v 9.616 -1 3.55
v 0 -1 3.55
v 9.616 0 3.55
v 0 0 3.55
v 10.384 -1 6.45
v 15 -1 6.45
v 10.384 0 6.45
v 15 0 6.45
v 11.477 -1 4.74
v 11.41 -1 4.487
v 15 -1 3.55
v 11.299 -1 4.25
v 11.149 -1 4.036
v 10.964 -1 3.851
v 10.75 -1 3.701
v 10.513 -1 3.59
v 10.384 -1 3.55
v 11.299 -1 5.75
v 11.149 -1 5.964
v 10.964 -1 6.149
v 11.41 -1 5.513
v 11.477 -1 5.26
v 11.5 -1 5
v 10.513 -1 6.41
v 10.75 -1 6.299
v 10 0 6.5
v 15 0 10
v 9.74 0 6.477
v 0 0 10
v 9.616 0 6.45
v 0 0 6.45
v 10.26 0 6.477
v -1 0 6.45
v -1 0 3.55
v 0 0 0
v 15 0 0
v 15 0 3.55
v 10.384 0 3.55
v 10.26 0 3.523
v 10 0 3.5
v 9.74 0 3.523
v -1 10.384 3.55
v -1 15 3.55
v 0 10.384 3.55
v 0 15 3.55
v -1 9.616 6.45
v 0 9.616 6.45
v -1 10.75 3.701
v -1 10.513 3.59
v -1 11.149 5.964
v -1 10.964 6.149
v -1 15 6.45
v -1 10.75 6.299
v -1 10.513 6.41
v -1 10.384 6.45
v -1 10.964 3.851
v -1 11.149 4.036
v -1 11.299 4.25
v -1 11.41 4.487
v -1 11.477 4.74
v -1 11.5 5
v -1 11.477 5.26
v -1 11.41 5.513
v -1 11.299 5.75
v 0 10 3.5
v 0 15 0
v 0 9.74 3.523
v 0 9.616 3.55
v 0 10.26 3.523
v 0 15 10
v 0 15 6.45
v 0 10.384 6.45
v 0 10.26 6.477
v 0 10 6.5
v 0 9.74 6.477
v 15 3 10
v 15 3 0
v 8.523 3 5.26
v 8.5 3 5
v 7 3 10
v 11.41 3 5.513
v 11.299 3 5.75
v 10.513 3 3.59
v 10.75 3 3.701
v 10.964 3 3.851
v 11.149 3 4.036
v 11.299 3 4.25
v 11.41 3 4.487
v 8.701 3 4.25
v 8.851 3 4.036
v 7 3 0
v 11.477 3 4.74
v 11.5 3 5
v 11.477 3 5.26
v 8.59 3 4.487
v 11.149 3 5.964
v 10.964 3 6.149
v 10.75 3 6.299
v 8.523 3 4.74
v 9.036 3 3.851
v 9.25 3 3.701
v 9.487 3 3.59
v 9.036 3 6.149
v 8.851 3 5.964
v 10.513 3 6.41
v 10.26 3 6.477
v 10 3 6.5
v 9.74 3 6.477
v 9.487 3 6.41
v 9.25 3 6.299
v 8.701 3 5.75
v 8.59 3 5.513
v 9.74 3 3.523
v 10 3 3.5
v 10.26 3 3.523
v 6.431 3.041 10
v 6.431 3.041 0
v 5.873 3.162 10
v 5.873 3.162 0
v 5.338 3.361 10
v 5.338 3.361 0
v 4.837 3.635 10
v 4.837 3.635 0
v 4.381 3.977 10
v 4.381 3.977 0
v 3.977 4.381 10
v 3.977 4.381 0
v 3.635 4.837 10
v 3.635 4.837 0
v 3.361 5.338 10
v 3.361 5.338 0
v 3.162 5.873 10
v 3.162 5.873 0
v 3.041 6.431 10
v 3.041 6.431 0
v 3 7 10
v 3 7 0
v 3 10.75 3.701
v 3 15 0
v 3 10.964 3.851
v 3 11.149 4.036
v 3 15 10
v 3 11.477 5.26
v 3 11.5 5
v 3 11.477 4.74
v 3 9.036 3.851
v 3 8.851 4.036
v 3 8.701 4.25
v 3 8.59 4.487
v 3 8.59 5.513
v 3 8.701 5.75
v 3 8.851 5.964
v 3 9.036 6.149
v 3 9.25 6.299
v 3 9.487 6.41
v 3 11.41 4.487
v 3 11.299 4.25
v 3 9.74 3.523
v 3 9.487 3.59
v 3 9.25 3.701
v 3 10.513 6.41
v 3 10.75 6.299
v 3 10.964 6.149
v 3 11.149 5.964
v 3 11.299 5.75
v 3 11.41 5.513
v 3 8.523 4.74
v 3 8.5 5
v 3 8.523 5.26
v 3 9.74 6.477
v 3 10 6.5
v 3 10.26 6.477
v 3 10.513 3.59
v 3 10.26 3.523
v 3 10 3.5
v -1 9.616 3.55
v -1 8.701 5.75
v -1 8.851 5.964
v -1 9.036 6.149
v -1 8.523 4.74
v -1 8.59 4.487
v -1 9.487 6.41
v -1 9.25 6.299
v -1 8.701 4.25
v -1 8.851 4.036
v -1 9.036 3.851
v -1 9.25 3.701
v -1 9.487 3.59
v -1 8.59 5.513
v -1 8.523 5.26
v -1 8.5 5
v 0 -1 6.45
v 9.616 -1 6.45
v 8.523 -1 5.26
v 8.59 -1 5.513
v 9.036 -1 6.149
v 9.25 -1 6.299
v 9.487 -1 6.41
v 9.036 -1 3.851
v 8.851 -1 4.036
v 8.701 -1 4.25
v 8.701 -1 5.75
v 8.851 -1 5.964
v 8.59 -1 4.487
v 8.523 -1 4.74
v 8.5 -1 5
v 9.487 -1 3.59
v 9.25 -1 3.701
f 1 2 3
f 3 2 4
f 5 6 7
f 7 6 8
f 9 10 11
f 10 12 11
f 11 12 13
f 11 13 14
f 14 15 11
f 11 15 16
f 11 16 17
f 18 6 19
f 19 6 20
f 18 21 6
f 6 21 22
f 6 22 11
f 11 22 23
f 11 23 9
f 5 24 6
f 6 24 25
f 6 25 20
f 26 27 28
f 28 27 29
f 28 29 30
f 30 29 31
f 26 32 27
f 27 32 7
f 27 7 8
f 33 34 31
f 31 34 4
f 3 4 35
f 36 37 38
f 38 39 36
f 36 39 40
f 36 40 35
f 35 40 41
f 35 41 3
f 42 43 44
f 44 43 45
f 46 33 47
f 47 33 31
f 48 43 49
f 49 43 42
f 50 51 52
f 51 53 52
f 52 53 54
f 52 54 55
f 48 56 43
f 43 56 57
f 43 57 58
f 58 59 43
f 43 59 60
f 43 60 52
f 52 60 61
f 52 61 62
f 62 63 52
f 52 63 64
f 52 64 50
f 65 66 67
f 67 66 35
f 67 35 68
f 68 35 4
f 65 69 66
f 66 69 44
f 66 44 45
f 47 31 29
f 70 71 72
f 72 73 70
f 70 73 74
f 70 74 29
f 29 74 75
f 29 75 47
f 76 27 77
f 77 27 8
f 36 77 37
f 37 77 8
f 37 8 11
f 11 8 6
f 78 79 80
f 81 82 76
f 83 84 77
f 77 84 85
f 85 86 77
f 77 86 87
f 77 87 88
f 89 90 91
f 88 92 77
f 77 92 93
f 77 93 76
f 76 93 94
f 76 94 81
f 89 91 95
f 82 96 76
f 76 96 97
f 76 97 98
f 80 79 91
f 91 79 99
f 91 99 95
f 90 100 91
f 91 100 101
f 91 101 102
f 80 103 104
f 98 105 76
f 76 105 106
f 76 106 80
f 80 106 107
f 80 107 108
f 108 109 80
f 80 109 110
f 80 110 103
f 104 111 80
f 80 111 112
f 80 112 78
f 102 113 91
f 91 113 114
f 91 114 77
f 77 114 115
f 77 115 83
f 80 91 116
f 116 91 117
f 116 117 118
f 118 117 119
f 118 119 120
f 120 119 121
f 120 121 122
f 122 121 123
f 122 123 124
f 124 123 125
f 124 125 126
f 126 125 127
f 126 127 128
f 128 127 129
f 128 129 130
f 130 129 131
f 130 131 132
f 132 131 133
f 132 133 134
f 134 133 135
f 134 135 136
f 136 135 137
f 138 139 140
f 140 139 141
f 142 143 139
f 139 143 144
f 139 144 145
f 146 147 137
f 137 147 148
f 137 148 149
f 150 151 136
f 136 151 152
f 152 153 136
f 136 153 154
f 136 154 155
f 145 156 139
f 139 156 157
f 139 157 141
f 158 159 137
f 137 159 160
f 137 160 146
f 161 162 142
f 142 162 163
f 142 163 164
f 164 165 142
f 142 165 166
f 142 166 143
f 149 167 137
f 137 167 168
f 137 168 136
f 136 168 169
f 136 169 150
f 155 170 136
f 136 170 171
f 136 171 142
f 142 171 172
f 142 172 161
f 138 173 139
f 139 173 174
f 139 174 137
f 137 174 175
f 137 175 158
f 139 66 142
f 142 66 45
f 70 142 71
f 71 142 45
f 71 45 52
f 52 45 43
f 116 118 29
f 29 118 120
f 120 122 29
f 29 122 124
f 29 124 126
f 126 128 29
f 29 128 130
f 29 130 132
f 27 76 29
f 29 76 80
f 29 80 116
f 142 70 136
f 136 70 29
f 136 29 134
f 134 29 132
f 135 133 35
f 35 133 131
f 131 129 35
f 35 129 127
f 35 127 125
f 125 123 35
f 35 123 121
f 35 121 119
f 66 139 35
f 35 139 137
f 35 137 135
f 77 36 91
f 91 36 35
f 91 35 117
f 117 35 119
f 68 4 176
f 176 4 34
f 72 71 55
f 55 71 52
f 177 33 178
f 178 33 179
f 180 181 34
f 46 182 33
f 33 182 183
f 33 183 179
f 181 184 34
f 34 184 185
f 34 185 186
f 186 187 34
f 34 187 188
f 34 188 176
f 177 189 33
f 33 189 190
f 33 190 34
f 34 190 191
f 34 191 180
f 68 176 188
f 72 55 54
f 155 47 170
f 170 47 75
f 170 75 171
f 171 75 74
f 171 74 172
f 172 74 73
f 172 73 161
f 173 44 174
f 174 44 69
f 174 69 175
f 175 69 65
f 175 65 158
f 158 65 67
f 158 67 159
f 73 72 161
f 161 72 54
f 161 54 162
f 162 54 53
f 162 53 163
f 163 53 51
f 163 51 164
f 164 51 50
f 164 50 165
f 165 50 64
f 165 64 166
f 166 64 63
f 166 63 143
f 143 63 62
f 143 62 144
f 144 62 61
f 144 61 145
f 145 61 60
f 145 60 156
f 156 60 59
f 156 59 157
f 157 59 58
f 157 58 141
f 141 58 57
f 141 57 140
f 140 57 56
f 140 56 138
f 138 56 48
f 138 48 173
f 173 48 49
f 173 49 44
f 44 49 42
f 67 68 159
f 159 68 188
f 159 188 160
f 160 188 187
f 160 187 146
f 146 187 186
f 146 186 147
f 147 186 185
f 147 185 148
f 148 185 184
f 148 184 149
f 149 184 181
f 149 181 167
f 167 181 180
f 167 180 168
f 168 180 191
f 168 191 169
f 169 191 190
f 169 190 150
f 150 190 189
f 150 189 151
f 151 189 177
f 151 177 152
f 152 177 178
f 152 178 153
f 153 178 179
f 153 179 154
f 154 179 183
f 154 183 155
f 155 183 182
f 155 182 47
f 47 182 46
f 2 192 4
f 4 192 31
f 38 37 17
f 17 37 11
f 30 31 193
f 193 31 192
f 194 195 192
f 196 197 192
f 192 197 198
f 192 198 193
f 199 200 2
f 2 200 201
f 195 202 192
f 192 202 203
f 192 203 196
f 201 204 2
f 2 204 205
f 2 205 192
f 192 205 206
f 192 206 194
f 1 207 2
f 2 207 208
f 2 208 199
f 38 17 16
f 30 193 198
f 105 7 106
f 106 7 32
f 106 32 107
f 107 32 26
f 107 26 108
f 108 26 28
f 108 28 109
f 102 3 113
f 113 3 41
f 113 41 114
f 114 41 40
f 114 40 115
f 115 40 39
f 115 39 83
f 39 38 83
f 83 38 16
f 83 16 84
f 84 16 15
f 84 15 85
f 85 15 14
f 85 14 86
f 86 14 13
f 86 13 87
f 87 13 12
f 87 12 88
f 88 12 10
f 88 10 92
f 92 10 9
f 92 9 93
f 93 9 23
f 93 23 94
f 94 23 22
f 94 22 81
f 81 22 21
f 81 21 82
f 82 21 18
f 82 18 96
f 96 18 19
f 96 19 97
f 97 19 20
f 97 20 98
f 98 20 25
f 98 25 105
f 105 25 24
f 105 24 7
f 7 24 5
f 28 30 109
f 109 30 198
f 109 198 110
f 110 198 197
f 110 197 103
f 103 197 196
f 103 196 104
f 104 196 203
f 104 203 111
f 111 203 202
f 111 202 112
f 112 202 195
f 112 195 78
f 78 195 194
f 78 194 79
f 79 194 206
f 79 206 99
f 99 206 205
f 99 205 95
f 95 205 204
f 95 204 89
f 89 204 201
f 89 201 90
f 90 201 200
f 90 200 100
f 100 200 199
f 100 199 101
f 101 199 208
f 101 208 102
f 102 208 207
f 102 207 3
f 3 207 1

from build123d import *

# Parameters (mm, degrees)
MAIN_DEPTH                         = 10
ESQUISSE4_W                        = 2.9
ESQUISSE4_H                        = 15
MAKERBEAMFIXVERTICAL_DEPTH         = 1
ESQUISSE2_R                        = 1.5
MAKERBEAMVERTICALHOLE_DEPTH        = 2
MAKERBEAMVERTICALHOLE_DEPTH_BACK   = 16
ESQUISSE5_W                        = 15
ESQUISSE5_H                        = 2.9
MAKERBEAMFIXHORIZONTAL_DEPTH       = 1
ESQUISSE3_R                        = 1.5
MAKERBEAMHORIZONTALHOLE_DEPTH      = 2
MAKERBEAMHORIZONTALHOLE_DEPTH_BACK = 16


with BuildPart() as part:
    # Esquisse1 → Main (new body)
    with BuildSketch(Plane.XY):
        with BuildLine():
            Line((0, 0), (15, 0))
            Line((15, 0), (15, 3))
            Line((15, 3), (7, 3))
            ThreePointArc((7, 3), (4.171572875, 4.171572875), (3, 7))
            Line((3, 7), (3, 15))
            Line((3, 15), (0, 15))
            Line((0, 15), (0, 0))
        make_face()
    extrude(amount=MAIN_DEPTH)

    # Esquisse4 → MakerBeamFixVertical (add)
    with BuildSketch(Plane.ZY):
        with Locations((5, 7.5)):
            Rectangle(ESQUISSE4_W, ESQUISSE4_H)
    extrude(amount=MAKERBEAMFIXVERTICAL_DEPTH)

    # Esquisse2 → MakerBeamVerticalHole (cut, two sides)
    with BuildSketch(Plane.ZY) as makerbeamverticalhole_sk:
        with Locations((5, 10)):
            Circle(ESQUISSE2_R)
    extrude(amount=MAKERBEAMVERTICALHOLE_DEPTH, mode=Mode.SUBTRACT)
    extrude(makerbeamverticalhole_sk.sketch, amount=-MAKERBEAMVERTICALHOLE_DEPTH_BACK, mode=Mode.SUBTRACT)

    # Esquisse5 → MakerBeamFixHorizontal (add)
    with BuildSketch(Plane(origin=(0, 0, 0), x_dir=(-1, 0, 0), z_dir=(0, -1, 0))):
        with Locations((-7.5, -5)):
            Rectangle(ESQUISSE5_W, ESQUISSE5_H)
    extrude(amount=MAKERBEAMFIXHORIZONTAL_DEPTH)

    # Esquisse3 → MakerBeamHorizontalHole (cut, two sides)
    with BuildSketch(Plane.XZ) as makerbeamhorizontalhole_sk:
        with Locations((10, 5)):
            Circle(ESQUISSE3_R)
    extrude(amount=MAKERBEAMHORIZONTALHOLE_DEPTH, mode=Mode.SUBTRACT)
    extrude(makerbeamhorizontalhole_sk.sketch, amount=-MAKERBEAMHORIZONTALHOLE_DEPTH_BACK, mode=Mode.SUBTRACT)


solid = part.part
